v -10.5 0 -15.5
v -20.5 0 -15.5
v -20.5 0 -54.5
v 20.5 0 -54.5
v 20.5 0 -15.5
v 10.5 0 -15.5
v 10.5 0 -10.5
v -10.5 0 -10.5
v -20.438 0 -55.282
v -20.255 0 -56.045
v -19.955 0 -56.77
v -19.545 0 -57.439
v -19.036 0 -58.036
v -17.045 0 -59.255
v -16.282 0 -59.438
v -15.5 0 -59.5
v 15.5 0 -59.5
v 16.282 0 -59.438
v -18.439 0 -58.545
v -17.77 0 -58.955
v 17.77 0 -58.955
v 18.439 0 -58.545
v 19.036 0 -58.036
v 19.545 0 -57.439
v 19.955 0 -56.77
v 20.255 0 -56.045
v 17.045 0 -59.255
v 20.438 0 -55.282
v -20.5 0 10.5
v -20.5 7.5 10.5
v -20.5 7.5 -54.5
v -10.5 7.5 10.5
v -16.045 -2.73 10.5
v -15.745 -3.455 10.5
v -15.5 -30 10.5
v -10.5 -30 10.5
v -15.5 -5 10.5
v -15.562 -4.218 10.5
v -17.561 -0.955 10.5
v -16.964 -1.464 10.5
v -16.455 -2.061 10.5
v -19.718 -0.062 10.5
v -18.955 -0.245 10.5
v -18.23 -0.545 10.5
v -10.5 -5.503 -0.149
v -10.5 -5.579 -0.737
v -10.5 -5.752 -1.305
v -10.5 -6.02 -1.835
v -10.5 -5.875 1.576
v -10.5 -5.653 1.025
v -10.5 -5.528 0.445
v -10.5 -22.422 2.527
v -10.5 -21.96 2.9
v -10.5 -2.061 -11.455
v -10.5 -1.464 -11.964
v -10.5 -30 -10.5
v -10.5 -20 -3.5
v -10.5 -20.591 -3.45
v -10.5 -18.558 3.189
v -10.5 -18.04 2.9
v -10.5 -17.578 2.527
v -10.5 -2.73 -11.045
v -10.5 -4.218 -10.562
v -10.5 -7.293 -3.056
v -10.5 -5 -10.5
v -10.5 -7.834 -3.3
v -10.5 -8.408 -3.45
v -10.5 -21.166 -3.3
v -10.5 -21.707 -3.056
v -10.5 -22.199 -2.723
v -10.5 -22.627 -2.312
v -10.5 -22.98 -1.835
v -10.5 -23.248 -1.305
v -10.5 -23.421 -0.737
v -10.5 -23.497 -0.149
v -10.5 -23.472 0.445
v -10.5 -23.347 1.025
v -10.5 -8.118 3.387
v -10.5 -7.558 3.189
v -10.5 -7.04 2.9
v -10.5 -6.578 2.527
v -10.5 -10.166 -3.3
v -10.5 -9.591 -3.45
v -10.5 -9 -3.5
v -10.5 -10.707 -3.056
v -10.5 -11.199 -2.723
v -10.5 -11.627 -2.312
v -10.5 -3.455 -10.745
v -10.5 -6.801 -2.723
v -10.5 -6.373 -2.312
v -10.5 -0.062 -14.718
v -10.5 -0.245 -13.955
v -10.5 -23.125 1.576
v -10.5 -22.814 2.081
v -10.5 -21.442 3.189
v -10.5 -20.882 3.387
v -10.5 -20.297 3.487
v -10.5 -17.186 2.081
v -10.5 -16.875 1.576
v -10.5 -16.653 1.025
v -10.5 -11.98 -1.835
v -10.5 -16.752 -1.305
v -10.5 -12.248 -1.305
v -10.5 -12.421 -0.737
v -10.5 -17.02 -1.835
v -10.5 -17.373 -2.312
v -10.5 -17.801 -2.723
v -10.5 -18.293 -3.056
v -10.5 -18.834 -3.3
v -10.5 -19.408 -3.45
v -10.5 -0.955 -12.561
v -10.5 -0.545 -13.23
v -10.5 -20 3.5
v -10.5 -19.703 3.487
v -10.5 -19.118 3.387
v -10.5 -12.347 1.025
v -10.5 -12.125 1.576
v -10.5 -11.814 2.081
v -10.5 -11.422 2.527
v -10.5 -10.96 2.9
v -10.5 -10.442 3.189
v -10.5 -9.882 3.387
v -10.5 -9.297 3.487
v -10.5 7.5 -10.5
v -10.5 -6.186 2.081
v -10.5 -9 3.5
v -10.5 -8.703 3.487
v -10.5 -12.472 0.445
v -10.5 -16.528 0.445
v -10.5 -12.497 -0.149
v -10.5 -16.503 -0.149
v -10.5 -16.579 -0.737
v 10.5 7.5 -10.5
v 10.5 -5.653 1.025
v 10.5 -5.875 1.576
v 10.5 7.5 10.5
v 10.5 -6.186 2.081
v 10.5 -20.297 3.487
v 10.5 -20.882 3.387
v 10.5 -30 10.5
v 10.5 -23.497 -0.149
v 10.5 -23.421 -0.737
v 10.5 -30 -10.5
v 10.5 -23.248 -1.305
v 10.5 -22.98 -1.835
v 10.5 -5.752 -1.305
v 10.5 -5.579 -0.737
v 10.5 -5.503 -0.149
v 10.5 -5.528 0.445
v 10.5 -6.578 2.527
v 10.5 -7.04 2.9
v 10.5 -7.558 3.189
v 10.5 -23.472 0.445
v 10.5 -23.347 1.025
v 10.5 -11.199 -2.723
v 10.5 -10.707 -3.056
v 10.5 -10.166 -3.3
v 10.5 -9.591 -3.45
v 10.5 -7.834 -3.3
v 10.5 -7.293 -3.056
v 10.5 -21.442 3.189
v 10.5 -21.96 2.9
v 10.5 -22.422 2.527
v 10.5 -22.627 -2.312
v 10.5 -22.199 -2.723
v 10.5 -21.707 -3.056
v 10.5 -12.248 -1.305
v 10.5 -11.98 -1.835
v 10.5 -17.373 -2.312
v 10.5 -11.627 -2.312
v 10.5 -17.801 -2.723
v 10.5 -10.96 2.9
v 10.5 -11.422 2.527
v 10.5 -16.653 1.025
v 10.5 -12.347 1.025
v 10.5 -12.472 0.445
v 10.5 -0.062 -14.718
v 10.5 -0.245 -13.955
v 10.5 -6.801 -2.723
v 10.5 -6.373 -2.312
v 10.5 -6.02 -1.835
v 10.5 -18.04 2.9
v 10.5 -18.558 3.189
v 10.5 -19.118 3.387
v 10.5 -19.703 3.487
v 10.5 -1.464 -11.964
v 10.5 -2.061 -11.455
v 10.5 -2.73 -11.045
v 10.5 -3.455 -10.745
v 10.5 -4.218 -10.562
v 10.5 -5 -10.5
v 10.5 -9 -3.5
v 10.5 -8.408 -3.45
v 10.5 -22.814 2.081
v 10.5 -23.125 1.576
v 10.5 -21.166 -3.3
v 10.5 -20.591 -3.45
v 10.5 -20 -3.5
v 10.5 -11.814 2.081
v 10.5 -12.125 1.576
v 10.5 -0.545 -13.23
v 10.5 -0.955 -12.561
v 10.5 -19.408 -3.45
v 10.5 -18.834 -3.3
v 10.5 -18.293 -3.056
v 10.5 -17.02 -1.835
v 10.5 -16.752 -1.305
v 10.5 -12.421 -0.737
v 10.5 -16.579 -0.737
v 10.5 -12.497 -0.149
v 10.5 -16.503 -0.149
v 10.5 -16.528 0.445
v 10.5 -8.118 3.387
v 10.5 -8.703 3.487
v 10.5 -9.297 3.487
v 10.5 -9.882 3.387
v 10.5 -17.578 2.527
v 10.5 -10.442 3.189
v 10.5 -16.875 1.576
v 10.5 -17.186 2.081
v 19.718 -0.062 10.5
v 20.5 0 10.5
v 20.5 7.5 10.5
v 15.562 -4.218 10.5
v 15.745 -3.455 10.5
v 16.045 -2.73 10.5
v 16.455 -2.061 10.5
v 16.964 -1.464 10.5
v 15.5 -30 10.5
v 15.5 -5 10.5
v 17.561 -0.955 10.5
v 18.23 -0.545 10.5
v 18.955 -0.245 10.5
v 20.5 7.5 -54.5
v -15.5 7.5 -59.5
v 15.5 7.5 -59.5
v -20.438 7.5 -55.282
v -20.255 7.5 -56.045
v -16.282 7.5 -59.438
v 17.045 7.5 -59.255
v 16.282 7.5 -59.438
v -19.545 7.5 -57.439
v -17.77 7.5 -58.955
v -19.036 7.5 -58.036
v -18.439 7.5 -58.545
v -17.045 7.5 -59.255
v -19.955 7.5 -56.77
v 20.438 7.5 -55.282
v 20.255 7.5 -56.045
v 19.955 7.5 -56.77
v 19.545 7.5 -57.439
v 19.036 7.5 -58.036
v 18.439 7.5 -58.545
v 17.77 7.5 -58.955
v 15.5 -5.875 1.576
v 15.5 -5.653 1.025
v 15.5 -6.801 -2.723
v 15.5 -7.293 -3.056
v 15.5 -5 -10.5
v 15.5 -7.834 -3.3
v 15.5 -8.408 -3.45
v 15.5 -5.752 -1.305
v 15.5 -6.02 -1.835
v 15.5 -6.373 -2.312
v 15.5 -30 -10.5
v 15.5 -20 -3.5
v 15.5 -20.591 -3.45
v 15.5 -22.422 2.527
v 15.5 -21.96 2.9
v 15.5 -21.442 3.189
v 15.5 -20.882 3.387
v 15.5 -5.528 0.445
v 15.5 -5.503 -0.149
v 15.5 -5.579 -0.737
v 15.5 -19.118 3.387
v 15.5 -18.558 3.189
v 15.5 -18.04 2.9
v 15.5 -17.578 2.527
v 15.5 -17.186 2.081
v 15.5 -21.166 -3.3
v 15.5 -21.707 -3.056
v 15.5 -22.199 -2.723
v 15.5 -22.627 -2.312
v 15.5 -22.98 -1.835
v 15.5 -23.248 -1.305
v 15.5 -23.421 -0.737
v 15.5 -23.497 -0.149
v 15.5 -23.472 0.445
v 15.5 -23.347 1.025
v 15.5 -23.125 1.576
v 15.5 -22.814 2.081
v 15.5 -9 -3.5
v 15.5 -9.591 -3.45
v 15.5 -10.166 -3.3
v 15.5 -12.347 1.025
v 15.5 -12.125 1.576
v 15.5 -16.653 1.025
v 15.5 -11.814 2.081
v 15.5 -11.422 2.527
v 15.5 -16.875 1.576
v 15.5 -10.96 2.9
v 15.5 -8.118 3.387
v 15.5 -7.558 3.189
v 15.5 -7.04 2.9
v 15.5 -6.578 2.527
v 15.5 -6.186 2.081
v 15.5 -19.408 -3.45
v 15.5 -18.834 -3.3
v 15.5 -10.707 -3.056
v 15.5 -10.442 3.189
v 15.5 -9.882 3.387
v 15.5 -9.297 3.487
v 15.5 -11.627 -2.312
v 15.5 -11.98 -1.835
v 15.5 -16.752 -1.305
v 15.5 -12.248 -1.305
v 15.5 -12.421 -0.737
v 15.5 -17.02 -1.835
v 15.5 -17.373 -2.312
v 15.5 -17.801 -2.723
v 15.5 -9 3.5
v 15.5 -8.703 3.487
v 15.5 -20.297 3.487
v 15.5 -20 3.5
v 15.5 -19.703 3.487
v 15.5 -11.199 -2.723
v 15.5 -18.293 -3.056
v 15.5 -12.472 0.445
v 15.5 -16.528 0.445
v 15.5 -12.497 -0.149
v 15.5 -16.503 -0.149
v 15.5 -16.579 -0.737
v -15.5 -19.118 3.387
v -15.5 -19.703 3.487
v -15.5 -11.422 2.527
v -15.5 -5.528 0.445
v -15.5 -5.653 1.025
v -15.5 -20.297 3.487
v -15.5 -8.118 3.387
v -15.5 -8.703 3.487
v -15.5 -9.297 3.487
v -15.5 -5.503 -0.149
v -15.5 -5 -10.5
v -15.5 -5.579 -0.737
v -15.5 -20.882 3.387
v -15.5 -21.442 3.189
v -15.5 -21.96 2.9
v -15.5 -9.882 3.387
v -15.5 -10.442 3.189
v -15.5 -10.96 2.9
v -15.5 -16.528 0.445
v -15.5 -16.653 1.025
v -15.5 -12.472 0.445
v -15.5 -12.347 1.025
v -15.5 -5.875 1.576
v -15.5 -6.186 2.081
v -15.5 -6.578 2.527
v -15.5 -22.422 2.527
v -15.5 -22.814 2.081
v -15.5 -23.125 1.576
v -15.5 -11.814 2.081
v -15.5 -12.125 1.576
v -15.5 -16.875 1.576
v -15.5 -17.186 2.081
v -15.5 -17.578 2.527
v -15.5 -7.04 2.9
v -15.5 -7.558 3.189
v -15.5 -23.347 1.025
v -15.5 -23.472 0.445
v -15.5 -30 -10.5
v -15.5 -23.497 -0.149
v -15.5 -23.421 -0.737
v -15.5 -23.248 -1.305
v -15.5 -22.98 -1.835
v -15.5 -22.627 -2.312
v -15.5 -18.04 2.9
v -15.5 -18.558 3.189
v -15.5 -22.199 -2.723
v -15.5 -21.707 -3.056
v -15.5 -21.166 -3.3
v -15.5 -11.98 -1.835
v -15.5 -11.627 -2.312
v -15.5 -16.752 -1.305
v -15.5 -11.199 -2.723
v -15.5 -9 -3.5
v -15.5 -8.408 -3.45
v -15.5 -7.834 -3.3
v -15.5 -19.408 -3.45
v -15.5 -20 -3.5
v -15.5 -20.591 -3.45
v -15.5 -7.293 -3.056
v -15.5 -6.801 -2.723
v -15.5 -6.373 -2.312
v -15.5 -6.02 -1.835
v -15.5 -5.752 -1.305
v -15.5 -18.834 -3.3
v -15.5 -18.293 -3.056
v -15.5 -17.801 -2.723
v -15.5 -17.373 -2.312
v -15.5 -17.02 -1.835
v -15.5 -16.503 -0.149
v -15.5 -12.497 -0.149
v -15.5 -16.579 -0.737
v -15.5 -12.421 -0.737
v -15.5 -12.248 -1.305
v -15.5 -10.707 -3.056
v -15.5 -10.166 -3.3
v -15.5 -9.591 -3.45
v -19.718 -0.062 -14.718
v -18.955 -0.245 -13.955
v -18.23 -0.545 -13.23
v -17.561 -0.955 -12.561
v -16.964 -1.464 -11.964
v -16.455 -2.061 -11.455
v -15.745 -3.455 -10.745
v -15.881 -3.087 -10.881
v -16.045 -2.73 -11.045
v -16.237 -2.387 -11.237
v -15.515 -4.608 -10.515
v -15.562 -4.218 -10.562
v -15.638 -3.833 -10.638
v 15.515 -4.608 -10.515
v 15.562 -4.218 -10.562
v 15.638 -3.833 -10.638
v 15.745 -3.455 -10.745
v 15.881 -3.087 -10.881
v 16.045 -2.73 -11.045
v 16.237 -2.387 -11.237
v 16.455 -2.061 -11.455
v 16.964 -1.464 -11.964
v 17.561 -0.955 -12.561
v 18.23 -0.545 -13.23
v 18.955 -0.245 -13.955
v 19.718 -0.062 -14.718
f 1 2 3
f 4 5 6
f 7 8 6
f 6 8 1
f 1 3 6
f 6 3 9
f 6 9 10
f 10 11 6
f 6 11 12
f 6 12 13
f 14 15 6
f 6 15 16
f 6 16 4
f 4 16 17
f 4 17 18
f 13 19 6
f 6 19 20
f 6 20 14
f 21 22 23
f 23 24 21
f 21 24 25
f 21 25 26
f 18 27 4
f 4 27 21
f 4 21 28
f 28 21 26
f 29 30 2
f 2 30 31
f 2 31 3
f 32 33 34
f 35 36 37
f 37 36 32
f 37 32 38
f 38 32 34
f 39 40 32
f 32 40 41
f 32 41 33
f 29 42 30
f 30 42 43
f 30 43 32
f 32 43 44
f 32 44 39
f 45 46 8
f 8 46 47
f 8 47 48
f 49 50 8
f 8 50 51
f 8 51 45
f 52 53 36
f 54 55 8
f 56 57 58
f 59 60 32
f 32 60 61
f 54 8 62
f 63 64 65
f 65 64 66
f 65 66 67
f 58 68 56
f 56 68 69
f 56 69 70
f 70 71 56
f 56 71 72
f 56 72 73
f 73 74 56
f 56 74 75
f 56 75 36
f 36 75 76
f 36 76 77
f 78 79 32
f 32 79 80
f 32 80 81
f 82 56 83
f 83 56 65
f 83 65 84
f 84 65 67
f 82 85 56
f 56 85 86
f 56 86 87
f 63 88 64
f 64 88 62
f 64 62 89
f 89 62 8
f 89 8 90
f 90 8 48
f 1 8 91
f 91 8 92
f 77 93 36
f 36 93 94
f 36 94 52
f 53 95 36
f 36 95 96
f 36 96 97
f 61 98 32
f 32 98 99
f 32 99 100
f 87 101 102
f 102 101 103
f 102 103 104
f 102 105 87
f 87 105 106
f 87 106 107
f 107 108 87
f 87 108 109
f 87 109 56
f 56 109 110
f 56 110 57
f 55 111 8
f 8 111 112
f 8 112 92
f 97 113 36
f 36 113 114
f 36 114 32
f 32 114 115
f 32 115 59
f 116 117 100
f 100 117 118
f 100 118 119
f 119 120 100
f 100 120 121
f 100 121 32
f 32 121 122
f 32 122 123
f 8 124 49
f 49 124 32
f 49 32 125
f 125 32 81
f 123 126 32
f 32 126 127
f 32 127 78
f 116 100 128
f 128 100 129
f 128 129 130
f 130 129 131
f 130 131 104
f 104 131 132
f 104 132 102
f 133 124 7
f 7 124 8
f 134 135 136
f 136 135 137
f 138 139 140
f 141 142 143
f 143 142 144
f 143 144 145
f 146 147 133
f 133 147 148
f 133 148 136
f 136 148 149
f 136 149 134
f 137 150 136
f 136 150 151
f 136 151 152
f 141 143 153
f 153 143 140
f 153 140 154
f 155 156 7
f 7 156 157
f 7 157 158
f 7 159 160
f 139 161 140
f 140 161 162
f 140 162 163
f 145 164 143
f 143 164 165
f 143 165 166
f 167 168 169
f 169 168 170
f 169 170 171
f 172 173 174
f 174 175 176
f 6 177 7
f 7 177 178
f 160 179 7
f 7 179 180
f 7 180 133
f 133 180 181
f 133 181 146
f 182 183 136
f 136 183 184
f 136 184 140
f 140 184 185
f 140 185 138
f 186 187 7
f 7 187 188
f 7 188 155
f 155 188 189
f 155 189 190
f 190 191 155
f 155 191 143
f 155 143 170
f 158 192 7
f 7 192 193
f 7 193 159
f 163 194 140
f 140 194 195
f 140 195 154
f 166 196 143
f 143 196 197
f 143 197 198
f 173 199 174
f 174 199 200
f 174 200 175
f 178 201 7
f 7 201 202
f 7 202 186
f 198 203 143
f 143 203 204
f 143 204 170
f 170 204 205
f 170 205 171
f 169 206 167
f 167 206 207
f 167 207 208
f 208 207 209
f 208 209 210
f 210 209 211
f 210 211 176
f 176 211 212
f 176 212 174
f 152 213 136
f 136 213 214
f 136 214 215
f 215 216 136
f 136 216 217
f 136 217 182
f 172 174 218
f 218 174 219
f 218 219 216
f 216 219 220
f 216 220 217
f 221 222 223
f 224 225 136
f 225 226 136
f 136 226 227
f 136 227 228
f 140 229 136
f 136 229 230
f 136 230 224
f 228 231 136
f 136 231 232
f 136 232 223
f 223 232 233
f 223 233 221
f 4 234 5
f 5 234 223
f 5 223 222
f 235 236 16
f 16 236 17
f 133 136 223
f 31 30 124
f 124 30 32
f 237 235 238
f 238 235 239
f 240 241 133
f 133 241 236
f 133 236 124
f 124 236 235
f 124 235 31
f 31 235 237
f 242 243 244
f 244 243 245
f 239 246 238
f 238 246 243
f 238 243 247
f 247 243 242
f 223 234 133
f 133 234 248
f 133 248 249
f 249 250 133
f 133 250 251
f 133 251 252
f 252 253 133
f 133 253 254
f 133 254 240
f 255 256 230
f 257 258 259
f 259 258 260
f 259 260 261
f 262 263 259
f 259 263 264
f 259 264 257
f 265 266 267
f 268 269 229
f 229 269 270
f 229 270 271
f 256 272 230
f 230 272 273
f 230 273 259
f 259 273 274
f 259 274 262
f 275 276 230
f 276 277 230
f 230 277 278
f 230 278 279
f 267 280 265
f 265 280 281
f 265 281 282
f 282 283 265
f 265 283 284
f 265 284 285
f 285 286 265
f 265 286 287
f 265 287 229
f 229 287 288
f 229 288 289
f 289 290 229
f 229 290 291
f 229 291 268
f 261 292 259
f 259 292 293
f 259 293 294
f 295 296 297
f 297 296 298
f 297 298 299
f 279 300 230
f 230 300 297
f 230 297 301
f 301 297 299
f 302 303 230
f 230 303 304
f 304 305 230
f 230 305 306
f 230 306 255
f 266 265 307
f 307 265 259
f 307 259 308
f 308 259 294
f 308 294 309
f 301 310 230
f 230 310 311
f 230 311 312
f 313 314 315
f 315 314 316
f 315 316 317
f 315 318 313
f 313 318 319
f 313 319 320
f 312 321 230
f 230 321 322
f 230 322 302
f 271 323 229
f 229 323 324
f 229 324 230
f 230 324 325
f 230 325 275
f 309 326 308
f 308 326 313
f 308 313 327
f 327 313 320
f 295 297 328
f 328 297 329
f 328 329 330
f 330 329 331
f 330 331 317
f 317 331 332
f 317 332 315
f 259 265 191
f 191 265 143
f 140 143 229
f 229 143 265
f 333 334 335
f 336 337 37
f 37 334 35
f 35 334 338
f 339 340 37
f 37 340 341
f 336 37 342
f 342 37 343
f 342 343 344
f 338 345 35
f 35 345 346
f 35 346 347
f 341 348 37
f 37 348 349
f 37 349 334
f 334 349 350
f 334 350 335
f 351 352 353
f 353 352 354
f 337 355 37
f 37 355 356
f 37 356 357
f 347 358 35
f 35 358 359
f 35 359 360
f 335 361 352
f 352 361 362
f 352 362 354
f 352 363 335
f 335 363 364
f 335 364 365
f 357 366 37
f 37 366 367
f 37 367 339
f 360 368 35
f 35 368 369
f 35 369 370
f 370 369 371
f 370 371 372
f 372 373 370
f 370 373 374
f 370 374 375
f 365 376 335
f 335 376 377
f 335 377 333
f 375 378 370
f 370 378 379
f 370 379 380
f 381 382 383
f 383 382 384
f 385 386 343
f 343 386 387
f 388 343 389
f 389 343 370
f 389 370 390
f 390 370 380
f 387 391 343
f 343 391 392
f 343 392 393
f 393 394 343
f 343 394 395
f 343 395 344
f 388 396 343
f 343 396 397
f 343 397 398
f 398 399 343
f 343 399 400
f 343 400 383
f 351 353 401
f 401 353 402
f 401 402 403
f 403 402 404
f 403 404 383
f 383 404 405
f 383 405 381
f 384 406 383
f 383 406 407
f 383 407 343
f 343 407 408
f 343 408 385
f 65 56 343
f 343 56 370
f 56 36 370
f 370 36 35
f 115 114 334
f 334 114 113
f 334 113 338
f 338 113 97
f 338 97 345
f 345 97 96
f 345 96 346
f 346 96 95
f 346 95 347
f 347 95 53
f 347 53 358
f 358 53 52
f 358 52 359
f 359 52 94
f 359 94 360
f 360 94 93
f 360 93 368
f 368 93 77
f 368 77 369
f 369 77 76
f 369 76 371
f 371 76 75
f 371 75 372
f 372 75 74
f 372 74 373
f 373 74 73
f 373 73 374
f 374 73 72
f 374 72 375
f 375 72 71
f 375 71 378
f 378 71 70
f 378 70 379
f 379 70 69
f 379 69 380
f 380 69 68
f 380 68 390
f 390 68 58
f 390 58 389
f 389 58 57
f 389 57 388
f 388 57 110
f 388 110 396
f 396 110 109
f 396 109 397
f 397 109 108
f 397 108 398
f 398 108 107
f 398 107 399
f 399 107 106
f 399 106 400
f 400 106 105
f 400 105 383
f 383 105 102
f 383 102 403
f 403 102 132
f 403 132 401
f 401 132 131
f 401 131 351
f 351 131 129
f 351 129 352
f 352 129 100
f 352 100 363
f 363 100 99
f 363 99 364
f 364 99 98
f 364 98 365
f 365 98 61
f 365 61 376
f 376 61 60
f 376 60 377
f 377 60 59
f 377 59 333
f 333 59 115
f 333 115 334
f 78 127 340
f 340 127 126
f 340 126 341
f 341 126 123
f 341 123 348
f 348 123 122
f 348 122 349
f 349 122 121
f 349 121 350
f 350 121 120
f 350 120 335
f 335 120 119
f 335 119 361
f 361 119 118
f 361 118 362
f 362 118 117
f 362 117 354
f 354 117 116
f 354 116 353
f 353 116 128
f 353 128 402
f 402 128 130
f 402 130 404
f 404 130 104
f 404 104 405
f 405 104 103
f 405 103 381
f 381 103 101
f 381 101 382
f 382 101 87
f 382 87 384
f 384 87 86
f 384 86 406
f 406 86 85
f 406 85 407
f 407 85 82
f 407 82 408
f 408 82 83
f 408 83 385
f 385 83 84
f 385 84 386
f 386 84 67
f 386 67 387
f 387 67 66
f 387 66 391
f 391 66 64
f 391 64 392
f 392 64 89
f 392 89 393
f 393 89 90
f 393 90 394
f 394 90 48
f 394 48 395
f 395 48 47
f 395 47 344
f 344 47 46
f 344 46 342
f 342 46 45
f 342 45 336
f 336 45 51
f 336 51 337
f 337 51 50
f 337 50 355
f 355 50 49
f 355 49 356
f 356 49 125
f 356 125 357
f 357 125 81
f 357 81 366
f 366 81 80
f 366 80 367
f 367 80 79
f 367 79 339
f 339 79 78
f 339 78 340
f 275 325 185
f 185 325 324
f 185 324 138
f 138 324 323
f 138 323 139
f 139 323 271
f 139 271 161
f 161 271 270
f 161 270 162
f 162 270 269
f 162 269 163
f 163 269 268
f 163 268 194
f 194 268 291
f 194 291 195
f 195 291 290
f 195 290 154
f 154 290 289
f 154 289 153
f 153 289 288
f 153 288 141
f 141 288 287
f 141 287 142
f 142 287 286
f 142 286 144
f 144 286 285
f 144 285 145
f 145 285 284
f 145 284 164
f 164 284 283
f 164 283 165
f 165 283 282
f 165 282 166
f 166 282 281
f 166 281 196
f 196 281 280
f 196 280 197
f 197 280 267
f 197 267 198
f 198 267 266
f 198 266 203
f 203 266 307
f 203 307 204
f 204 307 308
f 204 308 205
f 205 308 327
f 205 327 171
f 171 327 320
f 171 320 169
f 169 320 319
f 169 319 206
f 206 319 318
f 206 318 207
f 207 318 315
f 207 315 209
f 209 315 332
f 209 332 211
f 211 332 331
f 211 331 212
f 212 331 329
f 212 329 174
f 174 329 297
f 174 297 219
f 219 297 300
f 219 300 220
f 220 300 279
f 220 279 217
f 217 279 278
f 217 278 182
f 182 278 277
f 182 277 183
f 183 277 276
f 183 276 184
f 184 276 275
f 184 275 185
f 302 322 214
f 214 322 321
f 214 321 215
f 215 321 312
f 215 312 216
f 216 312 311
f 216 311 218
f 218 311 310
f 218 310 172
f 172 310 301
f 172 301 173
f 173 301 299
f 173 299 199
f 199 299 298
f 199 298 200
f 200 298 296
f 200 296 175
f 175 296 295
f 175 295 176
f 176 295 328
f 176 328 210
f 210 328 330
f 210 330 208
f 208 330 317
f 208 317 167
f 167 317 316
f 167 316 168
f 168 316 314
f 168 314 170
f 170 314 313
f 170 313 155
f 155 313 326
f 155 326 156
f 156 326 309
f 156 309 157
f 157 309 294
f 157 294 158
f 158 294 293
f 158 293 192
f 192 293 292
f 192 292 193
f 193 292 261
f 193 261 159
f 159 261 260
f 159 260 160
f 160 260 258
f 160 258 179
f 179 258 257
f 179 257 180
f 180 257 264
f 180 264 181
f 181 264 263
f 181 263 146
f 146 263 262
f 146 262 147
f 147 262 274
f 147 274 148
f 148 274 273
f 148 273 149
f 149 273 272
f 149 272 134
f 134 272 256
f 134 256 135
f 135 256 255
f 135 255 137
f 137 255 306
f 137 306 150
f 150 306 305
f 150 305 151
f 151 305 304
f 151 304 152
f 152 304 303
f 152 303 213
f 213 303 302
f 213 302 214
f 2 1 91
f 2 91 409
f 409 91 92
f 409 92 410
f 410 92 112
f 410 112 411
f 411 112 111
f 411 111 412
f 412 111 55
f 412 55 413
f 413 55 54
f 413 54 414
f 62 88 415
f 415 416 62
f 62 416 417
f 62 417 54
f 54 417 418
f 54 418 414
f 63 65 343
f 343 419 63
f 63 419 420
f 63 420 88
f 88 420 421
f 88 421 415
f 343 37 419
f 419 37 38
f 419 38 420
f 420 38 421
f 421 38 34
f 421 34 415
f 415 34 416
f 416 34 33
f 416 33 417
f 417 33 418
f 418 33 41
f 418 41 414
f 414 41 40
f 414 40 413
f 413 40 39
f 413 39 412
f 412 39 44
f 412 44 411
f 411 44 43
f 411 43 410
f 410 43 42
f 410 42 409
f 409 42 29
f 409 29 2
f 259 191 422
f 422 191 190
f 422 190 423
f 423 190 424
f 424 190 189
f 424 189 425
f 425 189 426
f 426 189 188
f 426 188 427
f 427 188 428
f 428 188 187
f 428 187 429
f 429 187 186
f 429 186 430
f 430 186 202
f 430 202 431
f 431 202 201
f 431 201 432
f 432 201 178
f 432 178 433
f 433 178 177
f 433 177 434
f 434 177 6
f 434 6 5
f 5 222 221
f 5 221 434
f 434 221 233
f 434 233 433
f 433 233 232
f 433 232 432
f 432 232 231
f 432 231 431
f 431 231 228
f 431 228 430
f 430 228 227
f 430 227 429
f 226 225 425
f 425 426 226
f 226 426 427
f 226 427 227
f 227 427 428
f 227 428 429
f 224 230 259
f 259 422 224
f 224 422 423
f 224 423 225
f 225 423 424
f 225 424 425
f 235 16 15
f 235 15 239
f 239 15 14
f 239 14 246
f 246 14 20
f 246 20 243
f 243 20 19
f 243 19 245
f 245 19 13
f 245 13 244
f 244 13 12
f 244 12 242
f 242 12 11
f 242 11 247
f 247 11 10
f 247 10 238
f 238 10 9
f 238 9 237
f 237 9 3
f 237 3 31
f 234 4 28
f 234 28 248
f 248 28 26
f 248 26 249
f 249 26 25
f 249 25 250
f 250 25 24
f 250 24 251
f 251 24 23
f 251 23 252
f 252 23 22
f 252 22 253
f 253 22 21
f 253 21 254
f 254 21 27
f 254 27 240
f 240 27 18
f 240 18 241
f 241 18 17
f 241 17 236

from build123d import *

# Parameters (mm, degrees)
BOSS_EXTRUDE1_DEPTH = 7.5
SKETCH2_W           = 5
SKETCH2_H           = 21
BOSS_EXTRUDE2_DEPTH = 30
SKETCH3_R           = 3.5
CUT_EXTRUDE1_DEPTH  = 79.238417673
FILLET1_R           = 5


with BuildPart() as part:
    # Sketch1 → Boss-Extrude1 (new body)
    with BuildSketch(Plane(origin=(0, 0, 0), x_dir=(1, 0, 0), z_dir=(0, 1, 0))):
        Polygon((-20.5, -10.5), (-10.5, -10.5), (-10.5, 10.5), (10.5, 10.5), (10.5, -10.5), (20.5, -10.5), (20.5, 59.5), (-20.5, 59.5), align=None)
    extrude(amount=BOSS_EXTRUDE1_DEPTH)

    # Sketch2 → Boss-Extrude2 (add)
    with BuildSketch(Plane.XZ):
        with Locations((-13, 0)):
            Rectangle(SKETCH2_W, SKETCH2_H)
        with Locations((13, 0)):
            Rectangle(SKETCH2_W, SKETCH2_H)
    extrude(amount=BOSS_EXTRUDE2_DEPTH)

    # Sketch3 → Cut-Extrude1 (cut, through all)
    with BuildSketch(Plane(origin=(20.5, 0, 0), x_dir=(0, 0, -1), z_dir=(1, 0, 0))):
        with Locations((0, -9)):
            Circle(SKETCH3_R)
        with Locations((0, -20)):
            Circle(SKETCH3_R)
    extrude(amount=-CUT_EXTRUDE1_DEPTH, mode=Mode.SUBTRACT)

    # Fillet1
    fillet1_edges = [part.edges().sort_by_distance(p)[0] for p in [
        (-13, 0, -10.5),
        (13, 0, -10.5),
        (-15.5, 0, 0),
        (15.5, 0, 0),
    ]]
    fillet(fillet1_edges, radius=FILLET1_R - 0.0001)  # a hair under: the kernel refuses the full size
    fillet1_2_edges = [part.edges().sort_by_distance(p)[0] for p in [
        (-20.5, 3.75, -59.5),
        (20.5, 3.75, -59.5),
    ]]
    fillet(fillet1_2_edges, radius=FILLET1_R)


solid = part.part
